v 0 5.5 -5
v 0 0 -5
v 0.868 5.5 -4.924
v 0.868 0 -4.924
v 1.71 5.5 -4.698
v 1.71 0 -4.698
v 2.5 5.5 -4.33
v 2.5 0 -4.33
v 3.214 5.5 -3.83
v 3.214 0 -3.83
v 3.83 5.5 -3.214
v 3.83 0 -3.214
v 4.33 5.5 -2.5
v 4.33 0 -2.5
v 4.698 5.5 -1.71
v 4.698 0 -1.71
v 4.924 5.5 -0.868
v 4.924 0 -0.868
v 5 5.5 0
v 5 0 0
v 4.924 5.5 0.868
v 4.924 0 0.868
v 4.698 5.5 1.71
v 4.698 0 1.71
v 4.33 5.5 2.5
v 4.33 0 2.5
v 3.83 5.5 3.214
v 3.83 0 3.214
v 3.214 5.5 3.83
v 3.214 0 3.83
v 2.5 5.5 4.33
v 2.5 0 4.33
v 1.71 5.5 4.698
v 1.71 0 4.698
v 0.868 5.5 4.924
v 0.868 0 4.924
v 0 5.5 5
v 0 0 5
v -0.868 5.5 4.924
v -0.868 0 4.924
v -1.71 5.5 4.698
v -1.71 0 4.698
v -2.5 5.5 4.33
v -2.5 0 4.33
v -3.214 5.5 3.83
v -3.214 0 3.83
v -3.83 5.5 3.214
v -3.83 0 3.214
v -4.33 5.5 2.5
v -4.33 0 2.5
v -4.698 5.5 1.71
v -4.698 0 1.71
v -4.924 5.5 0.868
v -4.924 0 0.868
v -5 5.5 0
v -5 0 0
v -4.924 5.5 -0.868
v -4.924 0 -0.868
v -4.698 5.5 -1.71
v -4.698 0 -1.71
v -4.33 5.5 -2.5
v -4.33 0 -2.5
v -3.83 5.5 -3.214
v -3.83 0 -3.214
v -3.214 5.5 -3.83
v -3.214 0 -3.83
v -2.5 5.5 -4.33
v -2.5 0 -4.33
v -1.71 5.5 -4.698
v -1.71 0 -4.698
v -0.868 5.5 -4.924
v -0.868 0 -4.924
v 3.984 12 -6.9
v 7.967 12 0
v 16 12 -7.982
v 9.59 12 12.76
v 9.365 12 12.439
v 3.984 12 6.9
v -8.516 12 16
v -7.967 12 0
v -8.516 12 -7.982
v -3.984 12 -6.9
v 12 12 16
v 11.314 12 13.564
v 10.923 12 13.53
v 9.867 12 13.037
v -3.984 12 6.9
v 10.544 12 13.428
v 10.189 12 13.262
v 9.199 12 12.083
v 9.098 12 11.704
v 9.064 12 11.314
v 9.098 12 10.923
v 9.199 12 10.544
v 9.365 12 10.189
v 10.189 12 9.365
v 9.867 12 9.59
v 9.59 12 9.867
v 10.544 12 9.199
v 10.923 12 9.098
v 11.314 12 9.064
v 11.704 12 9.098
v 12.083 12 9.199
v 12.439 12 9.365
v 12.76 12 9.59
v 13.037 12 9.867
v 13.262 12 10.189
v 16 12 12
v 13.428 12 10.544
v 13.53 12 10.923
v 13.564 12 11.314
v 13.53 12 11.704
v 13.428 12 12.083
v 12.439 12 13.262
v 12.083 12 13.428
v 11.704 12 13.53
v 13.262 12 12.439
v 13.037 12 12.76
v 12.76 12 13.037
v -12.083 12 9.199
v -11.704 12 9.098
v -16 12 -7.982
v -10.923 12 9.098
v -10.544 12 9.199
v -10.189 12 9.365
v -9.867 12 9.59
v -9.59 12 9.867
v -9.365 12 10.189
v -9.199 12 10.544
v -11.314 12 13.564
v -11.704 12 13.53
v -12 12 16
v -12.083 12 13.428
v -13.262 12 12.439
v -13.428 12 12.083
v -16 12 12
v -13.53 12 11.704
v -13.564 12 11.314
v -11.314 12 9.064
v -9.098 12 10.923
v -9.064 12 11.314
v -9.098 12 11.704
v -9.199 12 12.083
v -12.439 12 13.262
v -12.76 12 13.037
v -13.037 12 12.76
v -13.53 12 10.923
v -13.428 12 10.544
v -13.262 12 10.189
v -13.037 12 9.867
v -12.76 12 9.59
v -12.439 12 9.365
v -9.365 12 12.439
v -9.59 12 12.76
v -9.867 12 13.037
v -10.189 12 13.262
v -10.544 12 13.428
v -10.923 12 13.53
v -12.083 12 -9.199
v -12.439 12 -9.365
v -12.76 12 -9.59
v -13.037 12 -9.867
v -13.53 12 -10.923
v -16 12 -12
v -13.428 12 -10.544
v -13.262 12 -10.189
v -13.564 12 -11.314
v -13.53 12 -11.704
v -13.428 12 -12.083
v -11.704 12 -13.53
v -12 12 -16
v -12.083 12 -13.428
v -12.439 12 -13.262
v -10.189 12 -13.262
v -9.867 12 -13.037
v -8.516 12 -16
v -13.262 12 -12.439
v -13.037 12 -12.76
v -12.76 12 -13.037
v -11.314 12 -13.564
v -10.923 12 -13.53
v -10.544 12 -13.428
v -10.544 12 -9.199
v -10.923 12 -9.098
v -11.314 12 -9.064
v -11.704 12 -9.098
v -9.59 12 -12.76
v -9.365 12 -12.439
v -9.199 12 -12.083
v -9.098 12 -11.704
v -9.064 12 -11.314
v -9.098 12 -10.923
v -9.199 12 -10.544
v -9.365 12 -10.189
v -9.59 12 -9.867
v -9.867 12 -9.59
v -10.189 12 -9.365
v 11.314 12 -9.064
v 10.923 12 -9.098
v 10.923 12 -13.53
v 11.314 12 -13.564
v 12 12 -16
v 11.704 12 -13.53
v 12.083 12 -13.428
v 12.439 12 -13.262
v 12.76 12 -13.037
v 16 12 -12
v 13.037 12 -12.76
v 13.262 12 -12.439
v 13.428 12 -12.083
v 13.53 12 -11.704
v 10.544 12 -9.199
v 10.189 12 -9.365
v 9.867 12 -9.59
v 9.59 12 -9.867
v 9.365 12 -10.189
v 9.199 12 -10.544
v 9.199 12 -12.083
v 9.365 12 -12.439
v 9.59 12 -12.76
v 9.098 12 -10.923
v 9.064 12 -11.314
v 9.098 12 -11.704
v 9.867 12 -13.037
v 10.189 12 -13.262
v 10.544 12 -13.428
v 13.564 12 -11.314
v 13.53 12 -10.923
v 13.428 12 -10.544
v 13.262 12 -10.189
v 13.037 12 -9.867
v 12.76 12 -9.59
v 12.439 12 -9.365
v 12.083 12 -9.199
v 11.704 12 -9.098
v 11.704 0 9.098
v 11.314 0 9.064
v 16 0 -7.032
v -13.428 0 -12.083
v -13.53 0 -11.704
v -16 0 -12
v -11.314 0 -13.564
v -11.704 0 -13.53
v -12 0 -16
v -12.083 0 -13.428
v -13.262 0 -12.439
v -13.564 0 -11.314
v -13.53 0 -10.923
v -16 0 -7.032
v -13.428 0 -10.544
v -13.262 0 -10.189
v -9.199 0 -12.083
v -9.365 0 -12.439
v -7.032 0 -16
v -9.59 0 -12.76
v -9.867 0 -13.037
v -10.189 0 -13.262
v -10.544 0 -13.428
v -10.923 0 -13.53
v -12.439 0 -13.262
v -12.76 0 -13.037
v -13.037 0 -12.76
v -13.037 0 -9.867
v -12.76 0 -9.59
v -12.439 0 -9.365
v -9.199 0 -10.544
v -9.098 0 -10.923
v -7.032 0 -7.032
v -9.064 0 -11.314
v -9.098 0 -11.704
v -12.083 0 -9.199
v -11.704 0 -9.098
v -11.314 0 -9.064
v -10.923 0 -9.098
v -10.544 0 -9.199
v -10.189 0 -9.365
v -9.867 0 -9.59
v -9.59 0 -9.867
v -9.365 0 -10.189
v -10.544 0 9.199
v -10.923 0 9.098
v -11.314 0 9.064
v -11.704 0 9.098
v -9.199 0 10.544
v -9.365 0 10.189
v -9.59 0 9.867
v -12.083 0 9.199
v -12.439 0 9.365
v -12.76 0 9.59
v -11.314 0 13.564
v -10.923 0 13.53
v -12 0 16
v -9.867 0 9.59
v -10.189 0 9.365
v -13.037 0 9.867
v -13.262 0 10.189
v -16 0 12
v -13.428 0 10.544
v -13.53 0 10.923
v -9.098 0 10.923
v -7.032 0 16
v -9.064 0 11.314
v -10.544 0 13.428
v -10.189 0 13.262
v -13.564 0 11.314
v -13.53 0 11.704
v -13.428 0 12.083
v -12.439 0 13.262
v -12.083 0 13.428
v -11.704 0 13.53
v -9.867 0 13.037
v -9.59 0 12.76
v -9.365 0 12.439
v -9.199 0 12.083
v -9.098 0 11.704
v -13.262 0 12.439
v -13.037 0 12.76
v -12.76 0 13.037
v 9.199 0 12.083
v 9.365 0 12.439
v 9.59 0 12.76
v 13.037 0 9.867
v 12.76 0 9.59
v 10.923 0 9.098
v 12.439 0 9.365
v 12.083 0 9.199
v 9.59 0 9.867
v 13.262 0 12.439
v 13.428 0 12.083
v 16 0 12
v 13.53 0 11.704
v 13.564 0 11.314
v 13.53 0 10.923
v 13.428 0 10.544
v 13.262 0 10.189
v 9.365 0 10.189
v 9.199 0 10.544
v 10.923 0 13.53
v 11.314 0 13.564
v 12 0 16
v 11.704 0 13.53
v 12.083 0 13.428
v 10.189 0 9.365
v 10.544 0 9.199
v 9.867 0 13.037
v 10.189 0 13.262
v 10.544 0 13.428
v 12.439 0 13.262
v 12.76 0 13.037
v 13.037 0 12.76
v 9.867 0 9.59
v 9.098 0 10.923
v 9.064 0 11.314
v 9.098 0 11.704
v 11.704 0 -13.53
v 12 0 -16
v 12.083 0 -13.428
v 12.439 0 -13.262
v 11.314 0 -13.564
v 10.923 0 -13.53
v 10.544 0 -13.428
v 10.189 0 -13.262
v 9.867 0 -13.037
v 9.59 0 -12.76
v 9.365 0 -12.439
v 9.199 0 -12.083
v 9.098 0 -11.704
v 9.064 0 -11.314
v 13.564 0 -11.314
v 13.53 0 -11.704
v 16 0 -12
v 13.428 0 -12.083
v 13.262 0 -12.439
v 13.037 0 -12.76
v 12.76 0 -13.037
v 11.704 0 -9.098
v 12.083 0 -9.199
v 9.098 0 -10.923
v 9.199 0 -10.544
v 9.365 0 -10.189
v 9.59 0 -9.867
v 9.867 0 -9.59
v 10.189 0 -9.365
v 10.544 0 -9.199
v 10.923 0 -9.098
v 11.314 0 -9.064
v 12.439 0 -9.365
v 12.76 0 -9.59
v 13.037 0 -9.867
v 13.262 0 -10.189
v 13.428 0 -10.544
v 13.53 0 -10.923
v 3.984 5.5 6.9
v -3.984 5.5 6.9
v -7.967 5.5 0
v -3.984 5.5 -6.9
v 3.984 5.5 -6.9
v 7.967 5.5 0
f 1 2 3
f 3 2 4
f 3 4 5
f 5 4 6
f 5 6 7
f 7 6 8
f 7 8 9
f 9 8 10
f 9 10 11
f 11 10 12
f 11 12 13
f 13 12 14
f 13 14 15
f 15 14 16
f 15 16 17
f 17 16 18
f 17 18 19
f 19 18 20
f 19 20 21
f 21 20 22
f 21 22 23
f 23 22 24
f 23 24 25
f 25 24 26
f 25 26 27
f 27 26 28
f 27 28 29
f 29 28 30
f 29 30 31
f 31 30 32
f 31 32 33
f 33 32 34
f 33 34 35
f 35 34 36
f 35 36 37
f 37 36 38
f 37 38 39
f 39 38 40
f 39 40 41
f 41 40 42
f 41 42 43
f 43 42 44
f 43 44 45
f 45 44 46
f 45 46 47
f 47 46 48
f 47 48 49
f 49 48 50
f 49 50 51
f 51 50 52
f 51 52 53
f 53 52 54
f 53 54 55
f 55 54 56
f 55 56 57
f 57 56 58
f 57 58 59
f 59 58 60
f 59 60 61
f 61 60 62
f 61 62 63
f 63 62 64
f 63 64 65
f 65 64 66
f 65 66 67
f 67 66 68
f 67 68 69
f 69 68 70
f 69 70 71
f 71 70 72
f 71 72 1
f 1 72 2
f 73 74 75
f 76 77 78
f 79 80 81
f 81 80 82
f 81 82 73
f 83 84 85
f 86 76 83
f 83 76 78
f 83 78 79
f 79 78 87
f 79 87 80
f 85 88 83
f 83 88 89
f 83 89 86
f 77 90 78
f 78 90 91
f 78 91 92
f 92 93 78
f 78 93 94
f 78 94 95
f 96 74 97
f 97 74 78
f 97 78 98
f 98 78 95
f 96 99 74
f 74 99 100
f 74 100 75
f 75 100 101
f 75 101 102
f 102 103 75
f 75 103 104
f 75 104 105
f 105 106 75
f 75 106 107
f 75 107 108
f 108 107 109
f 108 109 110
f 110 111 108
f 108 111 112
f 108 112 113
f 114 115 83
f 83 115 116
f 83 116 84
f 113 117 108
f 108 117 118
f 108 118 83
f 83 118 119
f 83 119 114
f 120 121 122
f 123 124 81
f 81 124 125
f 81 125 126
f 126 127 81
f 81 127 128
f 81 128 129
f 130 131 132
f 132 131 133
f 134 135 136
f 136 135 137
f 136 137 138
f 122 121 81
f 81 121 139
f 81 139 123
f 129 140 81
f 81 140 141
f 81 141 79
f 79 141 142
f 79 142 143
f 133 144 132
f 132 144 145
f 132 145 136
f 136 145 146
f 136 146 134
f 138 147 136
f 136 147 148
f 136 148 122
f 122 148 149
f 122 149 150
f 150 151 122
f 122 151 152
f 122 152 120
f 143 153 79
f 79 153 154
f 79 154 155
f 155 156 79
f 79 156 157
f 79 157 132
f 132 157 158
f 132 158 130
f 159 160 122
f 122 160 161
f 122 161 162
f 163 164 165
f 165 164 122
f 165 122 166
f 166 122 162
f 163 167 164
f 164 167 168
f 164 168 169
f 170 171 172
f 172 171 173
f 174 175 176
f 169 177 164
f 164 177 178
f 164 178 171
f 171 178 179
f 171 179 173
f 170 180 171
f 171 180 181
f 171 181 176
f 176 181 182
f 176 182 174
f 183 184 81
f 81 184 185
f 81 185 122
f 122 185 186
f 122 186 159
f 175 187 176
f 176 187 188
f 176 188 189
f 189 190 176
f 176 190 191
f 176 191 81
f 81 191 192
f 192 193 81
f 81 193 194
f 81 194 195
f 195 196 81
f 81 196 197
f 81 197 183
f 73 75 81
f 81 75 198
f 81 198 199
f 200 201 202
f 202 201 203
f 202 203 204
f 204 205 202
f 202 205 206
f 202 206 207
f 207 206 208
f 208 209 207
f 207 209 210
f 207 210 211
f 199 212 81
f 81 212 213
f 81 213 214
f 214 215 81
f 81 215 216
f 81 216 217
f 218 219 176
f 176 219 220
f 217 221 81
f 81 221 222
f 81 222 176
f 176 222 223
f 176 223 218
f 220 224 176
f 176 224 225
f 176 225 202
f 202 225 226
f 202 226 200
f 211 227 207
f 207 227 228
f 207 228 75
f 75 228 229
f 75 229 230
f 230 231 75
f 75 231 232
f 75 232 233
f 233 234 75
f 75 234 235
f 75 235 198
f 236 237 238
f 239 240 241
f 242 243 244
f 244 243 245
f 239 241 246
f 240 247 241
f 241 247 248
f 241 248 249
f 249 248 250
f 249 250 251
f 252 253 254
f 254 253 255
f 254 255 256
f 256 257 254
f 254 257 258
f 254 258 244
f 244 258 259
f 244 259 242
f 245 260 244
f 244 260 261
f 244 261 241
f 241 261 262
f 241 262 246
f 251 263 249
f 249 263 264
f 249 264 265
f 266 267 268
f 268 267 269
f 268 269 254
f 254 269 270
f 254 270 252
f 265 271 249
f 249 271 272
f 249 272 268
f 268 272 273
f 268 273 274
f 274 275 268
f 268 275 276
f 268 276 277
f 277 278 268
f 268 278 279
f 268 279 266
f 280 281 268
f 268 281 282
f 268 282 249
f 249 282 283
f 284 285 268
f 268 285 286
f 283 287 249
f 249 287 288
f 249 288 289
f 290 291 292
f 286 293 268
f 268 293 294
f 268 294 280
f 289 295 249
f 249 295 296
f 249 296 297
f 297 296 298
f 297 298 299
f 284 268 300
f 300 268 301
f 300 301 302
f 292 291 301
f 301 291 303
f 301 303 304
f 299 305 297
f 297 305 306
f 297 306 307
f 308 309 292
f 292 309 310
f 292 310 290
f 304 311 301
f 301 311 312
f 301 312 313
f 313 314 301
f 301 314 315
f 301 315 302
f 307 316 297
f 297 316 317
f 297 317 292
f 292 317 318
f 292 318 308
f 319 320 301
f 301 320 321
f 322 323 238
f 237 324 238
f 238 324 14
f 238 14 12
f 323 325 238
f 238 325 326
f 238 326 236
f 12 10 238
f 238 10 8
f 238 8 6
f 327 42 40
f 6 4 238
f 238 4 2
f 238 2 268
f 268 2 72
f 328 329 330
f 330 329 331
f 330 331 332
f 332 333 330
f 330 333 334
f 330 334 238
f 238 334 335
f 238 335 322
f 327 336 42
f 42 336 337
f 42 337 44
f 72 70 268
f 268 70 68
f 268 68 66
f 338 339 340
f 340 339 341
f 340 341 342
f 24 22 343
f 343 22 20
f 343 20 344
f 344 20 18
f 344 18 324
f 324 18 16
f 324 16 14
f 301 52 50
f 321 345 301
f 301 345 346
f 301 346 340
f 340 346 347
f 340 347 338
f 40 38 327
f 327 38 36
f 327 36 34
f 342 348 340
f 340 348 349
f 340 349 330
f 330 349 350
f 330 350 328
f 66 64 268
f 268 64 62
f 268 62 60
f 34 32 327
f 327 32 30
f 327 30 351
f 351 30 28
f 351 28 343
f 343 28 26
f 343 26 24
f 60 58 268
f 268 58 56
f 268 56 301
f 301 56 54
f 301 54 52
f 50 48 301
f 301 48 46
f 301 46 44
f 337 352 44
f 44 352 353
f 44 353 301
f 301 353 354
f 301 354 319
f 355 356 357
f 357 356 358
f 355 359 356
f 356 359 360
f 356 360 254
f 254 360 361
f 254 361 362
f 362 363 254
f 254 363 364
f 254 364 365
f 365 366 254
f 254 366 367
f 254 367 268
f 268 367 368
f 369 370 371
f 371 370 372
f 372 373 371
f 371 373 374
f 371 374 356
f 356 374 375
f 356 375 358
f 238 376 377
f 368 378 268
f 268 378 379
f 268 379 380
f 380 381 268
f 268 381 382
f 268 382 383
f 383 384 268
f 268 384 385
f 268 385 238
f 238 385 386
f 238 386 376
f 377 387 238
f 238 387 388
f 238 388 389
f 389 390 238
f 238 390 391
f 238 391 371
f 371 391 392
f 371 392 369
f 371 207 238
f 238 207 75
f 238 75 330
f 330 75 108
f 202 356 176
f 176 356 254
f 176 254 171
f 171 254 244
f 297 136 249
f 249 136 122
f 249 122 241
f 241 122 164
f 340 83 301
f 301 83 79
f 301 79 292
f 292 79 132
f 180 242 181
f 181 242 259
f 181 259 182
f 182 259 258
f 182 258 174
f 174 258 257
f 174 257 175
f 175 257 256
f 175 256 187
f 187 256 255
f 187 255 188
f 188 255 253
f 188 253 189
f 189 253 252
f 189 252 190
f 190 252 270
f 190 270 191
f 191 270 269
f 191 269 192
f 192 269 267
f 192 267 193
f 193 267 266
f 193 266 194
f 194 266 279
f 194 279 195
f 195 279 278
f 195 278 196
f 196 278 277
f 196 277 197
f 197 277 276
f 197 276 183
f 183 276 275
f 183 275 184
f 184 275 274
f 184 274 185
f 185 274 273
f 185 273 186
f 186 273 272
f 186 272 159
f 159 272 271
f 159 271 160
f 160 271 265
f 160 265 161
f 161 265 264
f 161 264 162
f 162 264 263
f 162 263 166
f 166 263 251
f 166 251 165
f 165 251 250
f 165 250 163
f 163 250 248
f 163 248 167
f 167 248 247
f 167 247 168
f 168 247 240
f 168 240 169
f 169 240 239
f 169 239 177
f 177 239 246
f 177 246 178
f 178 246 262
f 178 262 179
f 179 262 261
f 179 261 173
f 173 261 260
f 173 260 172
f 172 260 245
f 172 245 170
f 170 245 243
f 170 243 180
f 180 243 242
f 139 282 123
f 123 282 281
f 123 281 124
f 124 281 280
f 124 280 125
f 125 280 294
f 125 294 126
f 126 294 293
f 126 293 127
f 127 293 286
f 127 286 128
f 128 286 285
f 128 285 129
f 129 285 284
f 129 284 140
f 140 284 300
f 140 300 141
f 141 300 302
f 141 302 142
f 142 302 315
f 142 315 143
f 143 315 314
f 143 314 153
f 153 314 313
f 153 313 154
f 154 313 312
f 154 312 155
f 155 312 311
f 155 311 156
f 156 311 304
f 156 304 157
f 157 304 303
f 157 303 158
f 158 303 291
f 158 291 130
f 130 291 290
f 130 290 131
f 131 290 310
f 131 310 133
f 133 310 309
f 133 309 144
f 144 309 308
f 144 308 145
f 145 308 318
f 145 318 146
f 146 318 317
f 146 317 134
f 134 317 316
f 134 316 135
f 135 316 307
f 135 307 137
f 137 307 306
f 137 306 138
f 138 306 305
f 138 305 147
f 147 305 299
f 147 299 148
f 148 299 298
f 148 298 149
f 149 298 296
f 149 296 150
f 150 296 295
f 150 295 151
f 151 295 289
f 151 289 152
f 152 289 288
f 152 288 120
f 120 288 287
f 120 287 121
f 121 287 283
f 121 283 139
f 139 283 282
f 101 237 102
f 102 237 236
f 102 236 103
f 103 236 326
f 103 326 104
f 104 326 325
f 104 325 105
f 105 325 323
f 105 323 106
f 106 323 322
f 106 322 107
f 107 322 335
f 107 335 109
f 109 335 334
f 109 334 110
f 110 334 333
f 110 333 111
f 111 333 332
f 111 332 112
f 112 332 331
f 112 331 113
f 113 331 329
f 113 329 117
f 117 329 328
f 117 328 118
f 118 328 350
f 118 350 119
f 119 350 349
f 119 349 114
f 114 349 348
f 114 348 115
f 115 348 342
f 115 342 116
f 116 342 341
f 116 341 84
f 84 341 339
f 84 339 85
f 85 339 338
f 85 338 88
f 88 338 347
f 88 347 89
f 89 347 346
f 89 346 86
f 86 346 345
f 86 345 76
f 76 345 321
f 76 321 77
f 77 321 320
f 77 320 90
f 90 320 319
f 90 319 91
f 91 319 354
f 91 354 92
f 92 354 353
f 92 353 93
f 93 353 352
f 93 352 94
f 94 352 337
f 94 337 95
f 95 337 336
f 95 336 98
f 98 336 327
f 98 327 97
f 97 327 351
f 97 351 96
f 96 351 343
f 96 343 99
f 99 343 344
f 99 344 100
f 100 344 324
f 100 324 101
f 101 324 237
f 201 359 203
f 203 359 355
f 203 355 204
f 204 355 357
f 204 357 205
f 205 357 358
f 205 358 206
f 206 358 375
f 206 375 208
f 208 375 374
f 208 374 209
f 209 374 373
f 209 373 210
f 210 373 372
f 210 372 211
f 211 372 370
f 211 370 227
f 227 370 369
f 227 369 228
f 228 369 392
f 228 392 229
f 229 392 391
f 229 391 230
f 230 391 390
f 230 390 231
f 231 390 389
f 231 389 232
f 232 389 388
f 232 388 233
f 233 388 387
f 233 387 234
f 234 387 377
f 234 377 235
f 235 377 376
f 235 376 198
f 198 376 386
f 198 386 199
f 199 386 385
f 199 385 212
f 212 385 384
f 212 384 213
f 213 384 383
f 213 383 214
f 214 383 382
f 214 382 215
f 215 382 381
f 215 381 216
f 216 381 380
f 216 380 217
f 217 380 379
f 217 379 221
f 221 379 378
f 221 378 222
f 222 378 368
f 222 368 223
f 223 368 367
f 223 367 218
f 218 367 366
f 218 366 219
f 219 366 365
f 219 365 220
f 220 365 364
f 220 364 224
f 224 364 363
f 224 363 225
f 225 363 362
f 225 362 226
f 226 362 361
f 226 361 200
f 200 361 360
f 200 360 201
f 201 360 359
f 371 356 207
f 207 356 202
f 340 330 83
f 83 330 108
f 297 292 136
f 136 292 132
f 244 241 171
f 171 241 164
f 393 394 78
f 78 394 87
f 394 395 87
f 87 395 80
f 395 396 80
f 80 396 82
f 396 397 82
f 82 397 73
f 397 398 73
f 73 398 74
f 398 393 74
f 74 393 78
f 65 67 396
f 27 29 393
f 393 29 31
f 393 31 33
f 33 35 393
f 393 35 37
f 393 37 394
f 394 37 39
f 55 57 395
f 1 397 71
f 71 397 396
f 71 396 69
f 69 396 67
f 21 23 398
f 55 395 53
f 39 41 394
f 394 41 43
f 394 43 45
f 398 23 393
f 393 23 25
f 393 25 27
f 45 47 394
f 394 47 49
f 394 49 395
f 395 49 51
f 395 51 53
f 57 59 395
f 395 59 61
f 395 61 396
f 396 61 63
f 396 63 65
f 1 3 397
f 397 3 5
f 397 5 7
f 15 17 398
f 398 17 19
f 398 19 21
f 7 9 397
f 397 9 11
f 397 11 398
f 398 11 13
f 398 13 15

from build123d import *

# Parameters (mm, degrees)
SKETCH1_W           = 32
SKETCH1_H           = 32
SKETCH1_R           = 5
SKETCH1_R_2         = 2.25
BOSS_EXTRUDE1_DEPTH = 12
CHAMFER1_SIZE       = 4
CUT_EXTRUDE1_DEPTH  = 6.5


with BuildPart() as part:
    # Sketch1 → Boss-Extrude1 (new body)
    with BuildSketch(Plane(origin=(0, 0, 0), x_dir=(1, 0, 0), z_dir=(0, 1, 0))):
        Rectangle(SKETCH1_W, SKETCH1_H)
        with Locations(Location((0, 0, 0), (0, 0, 270))):
            Circle(SKETCH1_R, mode=Mode.SUBTRACT)
        with Locations(Location((-11.313708499, 11.313708499, 0), (0, 0, 270))):
            Circle(SKETCH1_R_2, mode=Mode.SUBTRACT)
        with Locations(Location((-11.313708499, -11.313708499, 0), (0, 0, 270))):
            Circle(SKETCH1_R_2, mode=Mode.SUBTRACT)
        with Locations(Location((11.313708499, -11.313708499, 0), (0, 0, 270))):
            Circle(SKETCH1_R_2, mode=Mode.SUBTRACT)
        with Locations(Location((11.313708499, 11.313708499, 0), (0, 0, 270))):
            Circle(SKETCH1_R_2, mode=Mode.SUBTRACT)
    extrude(amount=BOSS_EXTRUDE1_DEPTH)

    # Chamfer1
    chamfer1_edges = [part.edges().sort_by_distance(p)[0] for p in [
        (16, 6, 16),
        (-16, 6, 16),
        (-16, 6, -16),
        (16, 6, -16),
    ]]
    chamfer(chamfer1_edges, length=CHAMFER1_SIZE)

    # Sketch4 → Cut-Extrude1 (cut)
    with BuildSketch(Plane(origin=(0, 12, 0), x_dir=(1, 0, 0), z_dir=(0, 1, 0))):
        Polygon((3.983716857, -6.9), (7.967433715, 0), (3.983716857, 6.9), (-3.983716857, 6.9), (-7.967433715, 0), (-3.983716857, -6.9), align=None)
    extrude(amount=-CUT_EXTRUDE1_DEPTH, mode=Mode.SUBTRACT)


solid = part.part
